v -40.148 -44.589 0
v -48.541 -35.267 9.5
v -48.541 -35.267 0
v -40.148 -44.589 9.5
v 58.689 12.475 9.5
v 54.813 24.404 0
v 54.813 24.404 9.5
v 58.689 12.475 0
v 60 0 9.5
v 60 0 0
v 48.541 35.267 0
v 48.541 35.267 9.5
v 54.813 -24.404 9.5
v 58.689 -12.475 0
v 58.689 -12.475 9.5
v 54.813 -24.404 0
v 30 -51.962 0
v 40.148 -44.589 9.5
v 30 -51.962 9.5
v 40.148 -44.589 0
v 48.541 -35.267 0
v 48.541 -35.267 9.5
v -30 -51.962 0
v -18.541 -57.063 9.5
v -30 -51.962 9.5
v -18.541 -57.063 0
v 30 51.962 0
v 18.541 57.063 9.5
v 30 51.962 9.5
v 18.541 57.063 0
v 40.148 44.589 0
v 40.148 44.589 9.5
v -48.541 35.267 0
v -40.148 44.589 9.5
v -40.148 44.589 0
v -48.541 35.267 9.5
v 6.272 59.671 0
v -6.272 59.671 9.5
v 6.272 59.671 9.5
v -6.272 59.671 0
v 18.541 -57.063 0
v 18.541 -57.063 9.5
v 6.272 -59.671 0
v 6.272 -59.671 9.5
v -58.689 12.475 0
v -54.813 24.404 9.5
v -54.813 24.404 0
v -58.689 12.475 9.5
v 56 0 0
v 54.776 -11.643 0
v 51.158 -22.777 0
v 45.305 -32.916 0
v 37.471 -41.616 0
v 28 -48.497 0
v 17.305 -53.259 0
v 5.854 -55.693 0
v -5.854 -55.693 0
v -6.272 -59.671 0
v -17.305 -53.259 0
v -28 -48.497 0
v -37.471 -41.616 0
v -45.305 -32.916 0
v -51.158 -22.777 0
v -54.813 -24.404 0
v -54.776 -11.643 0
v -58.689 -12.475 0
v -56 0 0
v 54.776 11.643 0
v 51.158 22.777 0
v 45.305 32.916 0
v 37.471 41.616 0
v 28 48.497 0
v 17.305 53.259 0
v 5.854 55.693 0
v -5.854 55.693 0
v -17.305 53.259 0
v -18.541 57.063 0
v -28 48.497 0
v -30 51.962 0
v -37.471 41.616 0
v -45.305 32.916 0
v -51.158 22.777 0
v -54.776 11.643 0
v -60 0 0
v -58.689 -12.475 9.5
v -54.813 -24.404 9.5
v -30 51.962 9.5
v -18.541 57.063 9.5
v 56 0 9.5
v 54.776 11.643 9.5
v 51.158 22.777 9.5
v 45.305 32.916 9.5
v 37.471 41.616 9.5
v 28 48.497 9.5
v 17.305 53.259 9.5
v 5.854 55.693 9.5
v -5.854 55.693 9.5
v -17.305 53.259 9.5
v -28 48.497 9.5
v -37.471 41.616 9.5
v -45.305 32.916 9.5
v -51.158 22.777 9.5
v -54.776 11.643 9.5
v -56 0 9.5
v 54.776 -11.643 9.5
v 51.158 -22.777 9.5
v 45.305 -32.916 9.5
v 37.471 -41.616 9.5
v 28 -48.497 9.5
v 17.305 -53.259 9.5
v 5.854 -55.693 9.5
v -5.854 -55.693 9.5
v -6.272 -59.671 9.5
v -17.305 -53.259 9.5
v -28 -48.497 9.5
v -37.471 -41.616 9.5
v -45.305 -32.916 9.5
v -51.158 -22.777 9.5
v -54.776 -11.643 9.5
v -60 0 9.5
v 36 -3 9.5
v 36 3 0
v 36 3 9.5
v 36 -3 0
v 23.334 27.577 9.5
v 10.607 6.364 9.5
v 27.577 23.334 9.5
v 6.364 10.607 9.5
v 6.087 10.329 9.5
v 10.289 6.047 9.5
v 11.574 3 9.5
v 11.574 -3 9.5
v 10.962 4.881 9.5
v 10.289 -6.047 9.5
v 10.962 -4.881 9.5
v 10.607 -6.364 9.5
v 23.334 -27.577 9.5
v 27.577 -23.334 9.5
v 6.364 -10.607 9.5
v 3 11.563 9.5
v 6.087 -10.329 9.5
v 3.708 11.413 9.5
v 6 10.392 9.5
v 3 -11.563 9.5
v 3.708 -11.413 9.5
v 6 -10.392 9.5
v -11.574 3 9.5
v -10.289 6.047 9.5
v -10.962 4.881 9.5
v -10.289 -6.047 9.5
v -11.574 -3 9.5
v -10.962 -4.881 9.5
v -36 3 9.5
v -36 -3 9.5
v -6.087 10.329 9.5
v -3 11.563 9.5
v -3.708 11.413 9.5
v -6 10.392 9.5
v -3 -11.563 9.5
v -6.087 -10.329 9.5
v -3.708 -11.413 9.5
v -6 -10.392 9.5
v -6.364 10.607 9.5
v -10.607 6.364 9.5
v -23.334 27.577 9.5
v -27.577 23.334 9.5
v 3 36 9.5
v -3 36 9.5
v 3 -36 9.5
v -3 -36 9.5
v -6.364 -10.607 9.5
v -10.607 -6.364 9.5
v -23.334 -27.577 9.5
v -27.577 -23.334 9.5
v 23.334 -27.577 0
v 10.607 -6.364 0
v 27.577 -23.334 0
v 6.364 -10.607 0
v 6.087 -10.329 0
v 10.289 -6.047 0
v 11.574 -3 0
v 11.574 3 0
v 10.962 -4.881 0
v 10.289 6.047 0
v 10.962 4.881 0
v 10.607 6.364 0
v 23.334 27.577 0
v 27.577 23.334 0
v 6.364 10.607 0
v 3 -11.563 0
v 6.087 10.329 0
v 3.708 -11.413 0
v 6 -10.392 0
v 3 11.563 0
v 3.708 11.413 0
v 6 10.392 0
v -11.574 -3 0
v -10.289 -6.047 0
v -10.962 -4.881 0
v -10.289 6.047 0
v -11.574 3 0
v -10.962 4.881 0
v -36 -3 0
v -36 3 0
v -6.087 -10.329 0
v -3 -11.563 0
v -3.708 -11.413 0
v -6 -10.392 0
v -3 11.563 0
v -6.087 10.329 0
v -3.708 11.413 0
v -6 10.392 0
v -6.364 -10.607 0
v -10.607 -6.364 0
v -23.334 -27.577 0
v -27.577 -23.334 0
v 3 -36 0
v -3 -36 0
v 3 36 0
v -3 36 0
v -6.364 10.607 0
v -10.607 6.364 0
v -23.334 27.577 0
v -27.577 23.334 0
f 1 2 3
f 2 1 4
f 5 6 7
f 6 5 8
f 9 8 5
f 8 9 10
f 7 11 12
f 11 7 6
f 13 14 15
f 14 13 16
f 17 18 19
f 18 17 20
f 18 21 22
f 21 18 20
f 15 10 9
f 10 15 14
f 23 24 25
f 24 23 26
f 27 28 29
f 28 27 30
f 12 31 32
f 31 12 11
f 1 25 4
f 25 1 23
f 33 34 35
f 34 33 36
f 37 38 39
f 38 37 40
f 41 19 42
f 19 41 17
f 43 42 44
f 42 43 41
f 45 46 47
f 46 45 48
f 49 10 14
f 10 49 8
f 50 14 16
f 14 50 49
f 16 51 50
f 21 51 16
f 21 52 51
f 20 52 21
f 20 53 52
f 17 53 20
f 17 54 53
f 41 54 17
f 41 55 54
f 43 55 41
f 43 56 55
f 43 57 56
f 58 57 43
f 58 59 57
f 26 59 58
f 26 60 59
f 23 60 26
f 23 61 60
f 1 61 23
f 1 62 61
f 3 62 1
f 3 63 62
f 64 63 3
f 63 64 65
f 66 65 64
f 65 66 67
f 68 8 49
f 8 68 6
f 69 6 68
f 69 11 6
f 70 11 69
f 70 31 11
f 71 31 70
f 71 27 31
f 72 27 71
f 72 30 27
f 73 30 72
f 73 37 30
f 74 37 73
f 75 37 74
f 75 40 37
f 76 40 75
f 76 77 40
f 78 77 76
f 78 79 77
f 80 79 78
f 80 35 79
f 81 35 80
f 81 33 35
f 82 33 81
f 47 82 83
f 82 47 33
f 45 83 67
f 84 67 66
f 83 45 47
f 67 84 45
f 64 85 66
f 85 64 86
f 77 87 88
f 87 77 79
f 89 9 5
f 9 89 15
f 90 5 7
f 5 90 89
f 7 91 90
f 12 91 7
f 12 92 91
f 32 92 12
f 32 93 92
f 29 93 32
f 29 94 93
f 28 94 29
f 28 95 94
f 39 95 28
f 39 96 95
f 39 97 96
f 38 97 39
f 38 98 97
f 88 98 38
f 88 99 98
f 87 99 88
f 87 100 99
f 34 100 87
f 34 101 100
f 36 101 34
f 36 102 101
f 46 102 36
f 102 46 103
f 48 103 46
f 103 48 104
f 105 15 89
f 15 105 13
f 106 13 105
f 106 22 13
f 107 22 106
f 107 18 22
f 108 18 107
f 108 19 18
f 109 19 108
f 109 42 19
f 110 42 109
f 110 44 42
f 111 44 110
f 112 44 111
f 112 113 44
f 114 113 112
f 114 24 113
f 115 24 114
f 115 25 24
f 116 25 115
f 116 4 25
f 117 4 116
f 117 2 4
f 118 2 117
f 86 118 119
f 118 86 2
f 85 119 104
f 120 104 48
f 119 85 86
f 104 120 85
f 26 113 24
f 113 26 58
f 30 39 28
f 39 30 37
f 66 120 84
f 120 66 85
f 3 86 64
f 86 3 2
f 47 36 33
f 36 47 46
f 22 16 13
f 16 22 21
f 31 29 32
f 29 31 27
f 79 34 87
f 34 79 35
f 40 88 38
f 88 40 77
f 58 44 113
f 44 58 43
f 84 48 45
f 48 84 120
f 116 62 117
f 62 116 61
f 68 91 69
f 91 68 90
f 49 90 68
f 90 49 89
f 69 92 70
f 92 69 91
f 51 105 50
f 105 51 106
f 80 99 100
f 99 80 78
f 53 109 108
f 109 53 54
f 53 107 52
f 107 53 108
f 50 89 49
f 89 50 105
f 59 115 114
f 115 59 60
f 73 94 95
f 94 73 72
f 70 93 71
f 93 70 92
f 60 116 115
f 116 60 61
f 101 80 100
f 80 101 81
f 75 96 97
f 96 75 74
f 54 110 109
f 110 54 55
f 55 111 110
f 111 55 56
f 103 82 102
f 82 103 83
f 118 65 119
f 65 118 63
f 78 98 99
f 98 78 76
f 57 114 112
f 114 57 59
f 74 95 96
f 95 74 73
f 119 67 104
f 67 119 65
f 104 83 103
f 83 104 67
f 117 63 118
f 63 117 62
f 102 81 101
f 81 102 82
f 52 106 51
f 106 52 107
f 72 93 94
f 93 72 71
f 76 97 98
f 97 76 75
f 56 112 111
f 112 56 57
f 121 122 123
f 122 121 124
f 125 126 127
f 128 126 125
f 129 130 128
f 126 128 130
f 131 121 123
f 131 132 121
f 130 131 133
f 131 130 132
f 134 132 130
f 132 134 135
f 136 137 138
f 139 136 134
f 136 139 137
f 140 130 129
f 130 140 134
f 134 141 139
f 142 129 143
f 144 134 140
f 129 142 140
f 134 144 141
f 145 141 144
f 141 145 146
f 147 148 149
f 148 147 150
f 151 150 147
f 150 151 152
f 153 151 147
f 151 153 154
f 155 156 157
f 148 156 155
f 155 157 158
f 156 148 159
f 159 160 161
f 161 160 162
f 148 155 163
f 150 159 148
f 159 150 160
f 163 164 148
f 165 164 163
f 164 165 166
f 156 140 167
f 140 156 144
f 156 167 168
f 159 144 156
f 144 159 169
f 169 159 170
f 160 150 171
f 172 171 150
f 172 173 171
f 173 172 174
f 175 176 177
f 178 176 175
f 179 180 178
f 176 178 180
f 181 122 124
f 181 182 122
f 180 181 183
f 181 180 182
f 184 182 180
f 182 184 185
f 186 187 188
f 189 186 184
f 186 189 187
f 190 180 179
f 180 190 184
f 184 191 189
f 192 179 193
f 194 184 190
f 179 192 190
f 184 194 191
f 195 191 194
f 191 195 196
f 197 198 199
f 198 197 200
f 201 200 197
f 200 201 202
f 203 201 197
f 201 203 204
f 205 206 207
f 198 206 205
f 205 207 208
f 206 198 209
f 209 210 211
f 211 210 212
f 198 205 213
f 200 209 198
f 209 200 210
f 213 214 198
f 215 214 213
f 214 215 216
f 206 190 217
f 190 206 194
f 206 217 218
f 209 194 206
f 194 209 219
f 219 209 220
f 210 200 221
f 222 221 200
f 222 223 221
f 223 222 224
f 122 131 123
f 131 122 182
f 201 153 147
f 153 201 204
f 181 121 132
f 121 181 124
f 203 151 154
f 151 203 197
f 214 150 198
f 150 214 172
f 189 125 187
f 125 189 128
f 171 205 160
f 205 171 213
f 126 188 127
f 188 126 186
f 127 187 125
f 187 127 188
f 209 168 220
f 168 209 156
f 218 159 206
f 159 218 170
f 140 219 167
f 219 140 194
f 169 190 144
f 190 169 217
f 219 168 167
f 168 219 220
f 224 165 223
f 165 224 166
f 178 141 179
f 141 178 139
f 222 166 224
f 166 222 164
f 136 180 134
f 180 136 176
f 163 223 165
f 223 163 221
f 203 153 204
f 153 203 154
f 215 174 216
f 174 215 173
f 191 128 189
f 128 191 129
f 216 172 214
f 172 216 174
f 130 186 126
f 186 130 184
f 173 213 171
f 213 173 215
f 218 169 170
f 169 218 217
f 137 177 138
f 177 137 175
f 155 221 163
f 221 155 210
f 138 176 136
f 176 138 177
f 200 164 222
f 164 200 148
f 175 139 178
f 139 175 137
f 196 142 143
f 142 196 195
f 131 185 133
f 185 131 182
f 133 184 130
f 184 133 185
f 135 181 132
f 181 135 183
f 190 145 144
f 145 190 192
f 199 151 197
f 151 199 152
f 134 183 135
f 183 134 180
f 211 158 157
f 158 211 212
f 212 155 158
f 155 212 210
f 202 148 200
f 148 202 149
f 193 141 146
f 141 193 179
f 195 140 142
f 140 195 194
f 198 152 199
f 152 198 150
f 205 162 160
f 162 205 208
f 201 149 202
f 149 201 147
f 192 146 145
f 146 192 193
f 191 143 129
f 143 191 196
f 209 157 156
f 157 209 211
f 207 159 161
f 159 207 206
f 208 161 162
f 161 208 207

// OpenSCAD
/* doodle-meta {"version":1,"parameters":{"outer_diameter":{"label":"Outer Diameter","description":"Diameter of the wheel rim","unit":"mm","feature":"rim"},"wheel_thickness":{"label":"Wheel Thickness","description":"Width of the wheel along the axle axis","unit":"mm","feature":"body"},"hub_diameter":{"label":"Hub Diameter","description":"Diameter of the central hub","unit":"mm","feature":"hub"},"spoke_count":{"label":"Spoke Count","description":"Number of radial spokes","unit":"count","feature":"spokes"},"spoke_width":{"label":"Spoke Width","description":"Width of each spoke","unit":"mm","feature":"spokes"}},"features":{"rim":{"kind":"dimension","axis":"x","label":"Outer Diameter"},"body":{"kind":"dimension","axis":"y","label":"Wheel Thickness"},"hub":{"kind":"region","label":"Hub","min":[0,0,0],"max":[{"parameter":"hub_diameter","scale":0.5},{"parameter":"wheel_thickness","scale":0.5},{"parameter":"wheel_thickness","scale":0.5}]},"spokes":{"kind":"region","label":"Spokes","min":[{"parameter":"hub_diameter","scale":0.5},{"parameter":"wheel_thickness","scale":0.5},{"parameter":"wheel_thickness","scale":0.5}],[{"parameter":"outer_diameter","scale":0.5},{"parameter":"wheel_thickness","scale":0.5},{"parameter":"wheel_thickness","scale":0.5}]}}} */

// Parameters
outer_diameter = 120.0;
wheel_thickness = 9.5;
hub_diameter = 24.0;
spoke_count = 8;
spoke_width = 6.0;

// Derived dimensions
outer_radius = outer_diameter / 2.0;
hub_radius = hub_diameter / 2.0;
spoke_length = outer_radius - hub_radius;

// Modules
module wheel_body() {
    // Rim: Outer cylinder minus inner cylinder
    difference() {
        cylinder(h = wheel_thickness, r = outer_radius, center = true);
        cylinder(h = wheel_thickness + 0.1, r = outer_radius - 4.0, center = true); // Rim thickness ~4mm
    }
    
    // Hub: Central cylinder
    cylinder(h = wheel_thickness, r = hub_radius, center = true);
    
    // Spokes: Array of rectangular bars
    for (i = [0 : spoke_count - 1]) {
        rotate([0, 0, i * (360.0 / spoke_count)]) {
            translate([hub_radius, 0, 0]) {
                cube([spoke_length, spoke_width, wheel_thickness], center = true);
            }
        }
    }
}

// Main Design
translate([0, 0, wheel_thickness / 2.0]) {
    wheel_body();
}
